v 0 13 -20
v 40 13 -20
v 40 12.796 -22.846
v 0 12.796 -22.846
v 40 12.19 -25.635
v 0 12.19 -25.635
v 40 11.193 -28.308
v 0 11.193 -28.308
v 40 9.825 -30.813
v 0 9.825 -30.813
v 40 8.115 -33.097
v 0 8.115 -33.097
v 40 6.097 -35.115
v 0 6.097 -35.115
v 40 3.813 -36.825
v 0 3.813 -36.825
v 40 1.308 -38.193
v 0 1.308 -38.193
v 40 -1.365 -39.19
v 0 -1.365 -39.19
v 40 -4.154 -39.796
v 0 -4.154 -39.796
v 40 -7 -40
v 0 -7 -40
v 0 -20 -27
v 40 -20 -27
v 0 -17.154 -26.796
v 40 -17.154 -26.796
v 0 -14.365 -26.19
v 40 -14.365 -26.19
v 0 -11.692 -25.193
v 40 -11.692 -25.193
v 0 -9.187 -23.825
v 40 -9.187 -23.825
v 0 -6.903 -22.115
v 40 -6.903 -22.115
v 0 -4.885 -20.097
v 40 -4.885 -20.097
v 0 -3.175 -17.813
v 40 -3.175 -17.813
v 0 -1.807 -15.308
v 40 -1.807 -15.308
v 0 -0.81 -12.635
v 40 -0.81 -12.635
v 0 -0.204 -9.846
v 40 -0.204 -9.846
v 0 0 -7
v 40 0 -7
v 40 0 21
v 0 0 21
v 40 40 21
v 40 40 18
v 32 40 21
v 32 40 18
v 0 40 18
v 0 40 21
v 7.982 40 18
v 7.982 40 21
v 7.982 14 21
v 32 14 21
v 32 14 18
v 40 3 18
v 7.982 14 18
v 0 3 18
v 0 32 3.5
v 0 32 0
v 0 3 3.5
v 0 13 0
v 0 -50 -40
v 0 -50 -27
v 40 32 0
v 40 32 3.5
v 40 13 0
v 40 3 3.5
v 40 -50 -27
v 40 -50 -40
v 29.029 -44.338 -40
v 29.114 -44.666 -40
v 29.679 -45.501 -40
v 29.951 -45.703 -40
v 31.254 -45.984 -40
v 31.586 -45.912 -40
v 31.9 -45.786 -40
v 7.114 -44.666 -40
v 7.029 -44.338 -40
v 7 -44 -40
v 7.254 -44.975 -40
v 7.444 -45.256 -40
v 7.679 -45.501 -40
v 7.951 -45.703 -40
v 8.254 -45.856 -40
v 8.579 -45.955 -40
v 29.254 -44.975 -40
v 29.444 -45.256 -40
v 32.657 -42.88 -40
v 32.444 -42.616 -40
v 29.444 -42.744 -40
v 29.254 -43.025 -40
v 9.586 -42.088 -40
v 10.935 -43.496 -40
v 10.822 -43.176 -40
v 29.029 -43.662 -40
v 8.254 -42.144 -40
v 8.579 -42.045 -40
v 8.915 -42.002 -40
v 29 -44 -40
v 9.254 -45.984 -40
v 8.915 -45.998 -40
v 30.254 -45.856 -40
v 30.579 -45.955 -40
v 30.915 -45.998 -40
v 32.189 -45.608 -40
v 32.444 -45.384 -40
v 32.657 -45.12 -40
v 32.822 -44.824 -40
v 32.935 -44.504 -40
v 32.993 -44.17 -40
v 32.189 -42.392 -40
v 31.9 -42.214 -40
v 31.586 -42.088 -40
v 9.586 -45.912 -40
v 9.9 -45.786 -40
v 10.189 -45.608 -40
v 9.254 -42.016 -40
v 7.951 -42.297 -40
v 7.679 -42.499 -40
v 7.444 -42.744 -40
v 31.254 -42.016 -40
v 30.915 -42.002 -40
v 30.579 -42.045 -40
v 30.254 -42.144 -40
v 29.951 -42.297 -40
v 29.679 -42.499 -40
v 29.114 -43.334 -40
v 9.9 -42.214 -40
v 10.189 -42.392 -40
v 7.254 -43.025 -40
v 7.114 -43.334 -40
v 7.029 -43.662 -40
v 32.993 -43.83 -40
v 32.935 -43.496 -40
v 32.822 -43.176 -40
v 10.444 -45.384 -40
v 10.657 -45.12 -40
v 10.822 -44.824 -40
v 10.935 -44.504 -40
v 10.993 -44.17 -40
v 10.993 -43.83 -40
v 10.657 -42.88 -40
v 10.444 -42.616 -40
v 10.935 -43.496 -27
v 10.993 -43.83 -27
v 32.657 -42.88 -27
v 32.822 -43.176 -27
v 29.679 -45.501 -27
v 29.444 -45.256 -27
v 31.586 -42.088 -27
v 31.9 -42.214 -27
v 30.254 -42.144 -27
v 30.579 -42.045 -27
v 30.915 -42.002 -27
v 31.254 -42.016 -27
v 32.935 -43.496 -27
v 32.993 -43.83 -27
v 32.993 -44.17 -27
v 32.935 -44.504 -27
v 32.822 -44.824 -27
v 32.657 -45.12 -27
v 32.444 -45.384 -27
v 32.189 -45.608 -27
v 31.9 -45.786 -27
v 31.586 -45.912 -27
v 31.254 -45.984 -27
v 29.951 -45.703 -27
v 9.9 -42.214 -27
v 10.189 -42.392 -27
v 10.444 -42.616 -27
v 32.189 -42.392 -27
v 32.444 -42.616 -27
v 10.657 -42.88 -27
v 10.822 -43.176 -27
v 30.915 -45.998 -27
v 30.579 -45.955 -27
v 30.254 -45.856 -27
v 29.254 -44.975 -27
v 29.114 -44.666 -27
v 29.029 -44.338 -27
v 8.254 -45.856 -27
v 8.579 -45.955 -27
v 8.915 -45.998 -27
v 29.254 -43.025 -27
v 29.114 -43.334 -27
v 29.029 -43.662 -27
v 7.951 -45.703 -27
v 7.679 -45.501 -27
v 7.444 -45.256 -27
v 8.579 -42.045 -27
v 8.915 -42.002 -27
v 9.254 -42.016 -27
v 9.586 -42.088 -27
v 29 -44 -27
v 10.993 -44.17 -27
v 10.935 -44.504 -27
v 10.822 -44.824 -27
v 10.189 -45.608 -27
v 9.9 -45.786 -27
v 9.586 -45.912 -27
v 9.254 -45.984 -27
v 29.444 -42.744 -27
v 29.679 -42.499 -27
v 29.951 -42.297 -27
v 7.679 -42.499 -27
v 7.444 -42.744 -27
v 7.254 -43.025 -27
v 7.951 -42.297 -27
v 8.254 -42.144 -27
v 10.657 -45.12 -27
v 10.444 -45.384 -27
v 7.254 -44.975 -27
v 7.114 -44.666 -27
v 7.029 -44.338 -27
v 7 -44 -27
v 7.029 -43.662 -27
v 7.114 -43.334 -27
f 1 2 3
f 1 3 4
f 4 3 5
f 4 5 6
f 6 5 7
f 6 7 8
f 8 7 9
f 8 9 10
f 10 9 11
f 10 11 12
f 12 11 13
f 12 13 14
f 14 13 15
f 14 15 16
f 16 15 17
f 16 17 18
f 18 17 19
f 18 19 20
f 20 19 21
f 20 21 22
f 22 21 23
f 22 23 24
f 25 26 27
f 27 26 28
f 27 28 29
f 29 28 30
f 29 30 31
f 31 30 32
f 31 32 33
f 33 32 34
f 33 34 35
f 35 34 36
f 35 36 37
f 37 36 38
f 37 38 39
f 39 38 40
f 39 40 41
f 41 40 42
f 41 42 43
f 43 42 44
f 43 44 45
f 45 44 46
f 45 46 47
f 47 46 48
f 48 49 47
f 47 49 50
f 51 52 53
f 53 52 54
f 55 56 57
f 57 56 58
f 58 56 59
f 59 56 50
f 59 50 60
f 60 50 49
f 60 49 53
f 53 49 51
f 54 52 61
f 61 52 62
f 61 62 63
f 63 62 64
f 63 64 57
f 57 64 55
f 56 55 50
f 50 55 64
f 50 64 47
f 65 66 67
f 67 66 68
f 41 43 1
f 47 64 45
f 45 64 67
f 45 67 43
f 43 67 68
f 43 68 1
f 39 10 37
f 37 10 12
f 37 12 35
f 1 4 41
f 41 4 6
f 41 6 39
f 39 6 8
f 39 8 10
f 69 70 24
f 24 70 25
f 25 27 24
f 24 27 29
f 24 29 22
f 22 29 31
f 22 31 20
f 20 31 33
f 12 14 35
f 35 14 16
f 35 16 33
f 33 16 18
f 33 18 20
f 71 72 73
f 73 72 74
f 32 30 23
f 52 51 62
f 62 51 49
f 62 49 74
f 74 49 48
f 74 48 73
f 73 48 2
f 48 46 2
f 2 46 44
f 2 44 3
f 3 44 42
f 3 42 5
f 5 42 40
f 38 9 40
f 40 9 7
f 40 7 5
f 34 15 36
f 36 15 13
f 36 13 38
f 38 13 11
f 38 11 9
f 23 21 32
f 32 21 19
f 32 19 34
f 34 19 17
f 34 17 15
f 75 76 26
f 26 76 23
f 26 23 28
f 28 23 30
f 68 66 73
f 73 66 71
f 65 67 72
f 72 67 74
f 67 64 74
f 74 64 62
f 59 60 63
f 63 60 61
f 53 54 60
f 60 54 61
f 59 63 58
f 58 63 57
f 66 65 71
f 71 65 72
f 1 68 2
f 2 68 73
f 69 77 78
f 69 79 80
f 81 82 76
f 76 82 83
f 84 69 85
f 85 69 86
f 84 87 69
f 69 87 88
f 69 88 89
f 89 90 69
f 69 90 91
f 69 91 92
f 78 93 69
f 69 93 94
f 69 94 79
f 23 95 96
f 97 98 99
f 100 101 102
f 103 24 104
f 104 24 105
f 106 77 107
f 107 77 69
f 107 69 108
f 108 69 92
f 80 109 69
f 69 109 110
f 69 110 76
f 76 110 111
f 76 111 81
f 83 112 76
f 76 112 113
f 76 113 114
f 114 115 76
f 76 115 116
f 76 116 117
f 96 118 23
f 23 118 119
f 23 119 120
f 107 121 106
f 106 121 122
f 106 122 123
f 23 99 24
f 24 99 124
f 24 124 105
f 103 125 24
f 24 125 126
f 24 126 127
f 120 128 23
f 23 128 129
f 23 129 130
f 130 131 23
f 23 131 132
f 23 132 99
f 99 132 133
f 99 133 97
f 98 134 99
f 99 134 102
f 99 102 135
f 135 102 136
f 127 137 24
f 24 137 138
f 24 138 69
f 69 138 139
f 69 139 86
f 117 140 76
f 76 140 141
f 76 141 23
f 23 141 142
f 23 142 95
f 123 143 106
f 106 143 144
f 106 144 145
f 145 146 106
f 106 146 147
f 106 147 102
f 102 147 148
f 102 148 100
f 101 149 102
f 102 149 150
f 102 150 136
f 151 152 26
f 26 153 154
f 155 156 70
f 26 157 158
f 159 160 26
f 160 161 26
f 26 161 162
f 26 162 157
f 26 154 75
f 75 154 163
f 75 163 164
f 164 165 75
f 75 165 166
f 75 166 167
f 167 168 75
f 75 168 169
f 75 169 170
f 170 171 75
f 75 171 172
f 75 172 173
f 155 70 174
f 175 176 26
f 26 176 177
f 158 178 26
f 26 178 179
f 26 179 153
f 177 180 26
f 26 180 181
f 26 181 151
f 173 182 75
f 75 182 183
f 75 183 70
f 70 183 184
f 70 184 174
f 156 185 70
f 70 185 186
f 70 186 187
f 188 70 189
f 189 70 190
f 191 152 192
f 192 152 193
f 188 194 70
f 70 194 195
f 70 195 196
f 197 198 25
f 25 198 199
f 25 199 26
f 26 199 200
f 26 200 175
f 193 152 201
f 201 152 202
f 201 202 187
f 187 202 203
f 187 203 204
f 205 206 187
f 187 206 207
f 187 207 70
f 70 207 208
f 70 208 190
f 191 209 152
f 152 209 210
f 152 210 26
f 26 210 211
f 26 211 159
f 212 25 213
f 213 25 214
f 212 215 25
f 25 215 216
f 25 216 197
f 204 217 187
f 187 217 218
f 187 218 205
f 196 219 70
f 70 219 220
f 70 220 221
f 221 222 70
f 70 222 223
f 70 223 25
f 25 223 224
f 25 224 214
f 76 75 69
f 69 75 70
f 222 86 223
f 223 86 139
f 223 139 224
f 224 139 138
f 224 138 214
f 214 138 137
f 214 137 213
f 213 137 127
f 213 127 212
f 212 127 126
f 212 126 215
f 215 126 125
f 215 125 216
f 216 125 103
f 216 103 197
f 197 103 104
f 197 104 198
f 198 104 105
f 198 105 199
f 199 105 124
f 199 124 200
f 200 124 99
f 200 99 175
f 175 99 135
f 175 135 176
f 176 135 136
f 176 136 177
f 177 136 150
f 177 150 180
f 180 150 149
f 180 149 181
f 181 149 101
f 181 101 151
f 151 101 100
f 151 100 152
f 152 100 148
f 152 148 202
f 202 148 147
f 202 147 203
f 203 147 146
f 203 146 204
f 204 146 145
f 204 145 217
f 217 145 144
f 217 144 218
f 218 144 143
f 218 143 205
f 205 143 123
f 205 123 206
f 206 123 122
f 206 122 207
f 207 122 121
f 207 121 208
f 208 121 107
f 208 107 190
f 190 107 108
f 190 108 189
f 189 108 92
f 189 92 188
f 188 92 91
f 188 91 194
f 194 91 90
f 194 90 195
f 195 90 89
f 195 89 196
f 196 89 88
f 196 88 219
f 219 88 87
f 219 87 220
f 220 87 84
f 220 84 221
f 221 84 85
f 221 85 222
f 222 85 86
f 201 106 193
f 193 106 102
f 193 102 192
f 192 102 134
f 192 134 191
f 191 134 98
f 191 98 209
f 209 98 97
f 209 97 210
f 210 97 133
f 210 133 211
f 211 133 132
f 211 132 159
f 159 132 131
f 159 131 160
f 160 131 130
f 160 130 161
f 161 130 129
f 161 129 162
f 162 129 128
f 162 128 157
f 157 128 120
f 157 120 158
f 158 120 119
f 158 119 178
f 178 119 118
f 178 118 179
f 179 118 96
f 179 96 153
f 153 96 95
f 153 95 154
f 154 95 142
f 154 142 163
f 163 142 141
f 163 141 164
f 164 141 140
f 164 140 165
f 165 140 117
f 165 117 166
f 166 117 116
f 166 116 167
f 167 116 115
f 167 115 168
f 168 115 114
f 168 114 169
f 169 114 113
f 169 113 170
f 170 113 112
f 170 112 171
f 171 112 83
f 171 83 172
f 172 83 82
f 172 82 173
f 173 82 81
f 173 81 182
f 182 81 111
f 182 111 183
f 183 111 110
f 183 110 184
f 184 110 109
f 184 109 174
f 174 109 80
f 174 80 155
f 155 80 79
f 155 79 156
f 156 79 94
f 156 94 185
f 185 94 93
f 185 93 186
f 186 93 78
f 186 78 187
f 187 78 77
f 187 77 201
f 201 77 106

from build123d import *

# Parameters (mm, degrees)
SKETCH_1_W          = 40
SKETCH_1_H          = 40
EXTRUDE_1_DEPTH     = 21
SKETCH_2_W          = 14.5
SKETCH_2_H          = 37
CUT_EXTRUDE_1_DEPTH = 61.340699366
CUT_EXTRUDE_2_REACH = 62.341
SKETCH_3_W          = 24.017804412
SKETCH_3_H          = 26
SKETCH_4_W          = 40
SKETCH_4_H          = 8
CUT_EXTRUDE_3_DEPTH = 16
SKETCH_5_W          = 40
SKETCH_5_H          = 13
EXTRUDE_3_DEPTH     = 40
SKETCH_6_W          = 40
SKETCH_6_H          = 13
EXTRUDE_4_DEPTH     = 50
FILLET_1_R          = 20
FILLET_2_R          = 20
CUT_EXTRUDE_4_REACH = 90.436
SKETCH_7_R          = 2


with BuildPart() as part:
    # 草图1 → 凸台-拉伸1 (new body)
    with BuildSketch(Plane.XY):
        with Locations((20, 20)):
            Rectangle(SKETCH_1_W, SKETCH_1_H)
    extrude(amount=EXTRUDE_1_DEPTH)

    # 草图2 → 切除-拉伸1 (cut, through all)
    with BuildSketch(Plane(origin=(40, 0, 0), x_dir=(0, 0, -1), z_dir=(1, 0, 0))):
        with Locations((-10.75, 21.5)):
            Rectangle(SKETCH_2_W, SKETCH_2_H)
    extrude(amount=-CUT_EXTRUDE_1_DEPTH, mode=Mode.SUBTRACT)

    # 草图3 → 切除-拉伸2 (cut, up to next)
    with BuildSketch(Plane.XY.offset(21), mode=Mode.PRIVATE) as cut_extrude_2_sk1:
        with Locations((19.991097794, 27)):
            Rectangle(SKETCH_3_W, SKETCH_3_H)
    cut_extrude_2_tool1 = extrude(cut_extrude_2_sk1.sketch, amount=-CUT_EXTRUDE_2_REACH, mode=Mode.PRIVATE) & part.part
    add(cut_extrude_2_tool1.solids().sort_by_distance((19.991098, 27, 21))[0], mode=Mode.SUBTRACT)

    # 草图4 → 切除-拉伸3 (cut)
    with BuildSketch(Plane(origin=(0, 0, 0), x_dir=(-1, 0, 0), z_dir=(0, 0, -1))):
        with Locations((-20, 36)):
            Rectangle(SKETCH_4_W, SKETCH_4_H)
    extrude(amount=-CUT_EXTRUDE_3_DEPTH, mode=Mode.SUBTRACT)

    # 草图5 → 凸台-拉伸3 (add)
    with BuildSketch(Plane(origin=(0, 0, 0), x_dir=(-1, 0, 0), z_dir=(0, 0, -1))):
        with Locations((-20, 6.5)):
            Rectangle(SKETCH_5_W, SKETCH_5_H)
    extrude(amount=EXTRUDE_3_DEPTH)

    # 草图6 → 凸台-拉伸4 (add)
    with BuildSketch(Plane.XZ):
        with Locations((20, -33.5)):
            Rectangle(SKETCH_6_W, SKETCH_6_H)
    extrude(amount=EXTRUDE_4_DEPTH)

    # 圆角1
    fillet_1_edges = [part.edges().sort_by_distance(p)[0] for p in [
        (20, 0, -27),
    ]]
    fillet(fillet_1_edges, radius=FILLET_1_R)

    # 圆角2
    fillet_2_edges = [part.edges().sort_by_distance(p)[0] for p in [
        (20, 13, -40),
    ]]
    fillet(fillet_2_edges, radius=FILLET_2_R)

    # 草图7 → 切除-拉伸4 (cut, up to next)
    with BuildSketch(Plane(origin=(0, 0, -40), x_dir=(-1, 0, 0), z_dir=(0, 0, -1)), mode=Mode.PRIVATE) as cut_extrude_4_sk1:
        with Locations((-31, -44)):
            Circle(SKETCH_7_R)
    cut_extrude_4_tool1 = extrude(cut_extrude_4_sk1.sketch, amount=-CUT_EXTRUDE_4_REACH, mode=Mode.PRIVATE) & part.part
    # 草图7 → 切除-拉伸4 (cut, up to next)
    with BuildSketch(Plane(origin=(0, 0, -40), x_dir=(-1, 0, 0), z_dir=(0, 0, -1)), mode=Mode.PRIVATE) as cut_extrude_4_sk2:
        with Locations((-9, -44)):
            Circle(SKETCH_7_R)
    cut_extrude_4_tool2 = extrude(cut_extrude_4_sk2.sketch, amount=-CUT_EXTRUDE_4_REACH, mode=Mode.PRIVATE) & part.part
    add(cut_extrude_4_tool1.solids().sort_by_distance((31, -44, -40))[0], mode=Mode.SUBTRACT)
    add(cut_extrude_4_tool2.solids().sort_by_distance((9, -44, -40))[0], mode=Mode.SUBTRACT)


solid = part.part
